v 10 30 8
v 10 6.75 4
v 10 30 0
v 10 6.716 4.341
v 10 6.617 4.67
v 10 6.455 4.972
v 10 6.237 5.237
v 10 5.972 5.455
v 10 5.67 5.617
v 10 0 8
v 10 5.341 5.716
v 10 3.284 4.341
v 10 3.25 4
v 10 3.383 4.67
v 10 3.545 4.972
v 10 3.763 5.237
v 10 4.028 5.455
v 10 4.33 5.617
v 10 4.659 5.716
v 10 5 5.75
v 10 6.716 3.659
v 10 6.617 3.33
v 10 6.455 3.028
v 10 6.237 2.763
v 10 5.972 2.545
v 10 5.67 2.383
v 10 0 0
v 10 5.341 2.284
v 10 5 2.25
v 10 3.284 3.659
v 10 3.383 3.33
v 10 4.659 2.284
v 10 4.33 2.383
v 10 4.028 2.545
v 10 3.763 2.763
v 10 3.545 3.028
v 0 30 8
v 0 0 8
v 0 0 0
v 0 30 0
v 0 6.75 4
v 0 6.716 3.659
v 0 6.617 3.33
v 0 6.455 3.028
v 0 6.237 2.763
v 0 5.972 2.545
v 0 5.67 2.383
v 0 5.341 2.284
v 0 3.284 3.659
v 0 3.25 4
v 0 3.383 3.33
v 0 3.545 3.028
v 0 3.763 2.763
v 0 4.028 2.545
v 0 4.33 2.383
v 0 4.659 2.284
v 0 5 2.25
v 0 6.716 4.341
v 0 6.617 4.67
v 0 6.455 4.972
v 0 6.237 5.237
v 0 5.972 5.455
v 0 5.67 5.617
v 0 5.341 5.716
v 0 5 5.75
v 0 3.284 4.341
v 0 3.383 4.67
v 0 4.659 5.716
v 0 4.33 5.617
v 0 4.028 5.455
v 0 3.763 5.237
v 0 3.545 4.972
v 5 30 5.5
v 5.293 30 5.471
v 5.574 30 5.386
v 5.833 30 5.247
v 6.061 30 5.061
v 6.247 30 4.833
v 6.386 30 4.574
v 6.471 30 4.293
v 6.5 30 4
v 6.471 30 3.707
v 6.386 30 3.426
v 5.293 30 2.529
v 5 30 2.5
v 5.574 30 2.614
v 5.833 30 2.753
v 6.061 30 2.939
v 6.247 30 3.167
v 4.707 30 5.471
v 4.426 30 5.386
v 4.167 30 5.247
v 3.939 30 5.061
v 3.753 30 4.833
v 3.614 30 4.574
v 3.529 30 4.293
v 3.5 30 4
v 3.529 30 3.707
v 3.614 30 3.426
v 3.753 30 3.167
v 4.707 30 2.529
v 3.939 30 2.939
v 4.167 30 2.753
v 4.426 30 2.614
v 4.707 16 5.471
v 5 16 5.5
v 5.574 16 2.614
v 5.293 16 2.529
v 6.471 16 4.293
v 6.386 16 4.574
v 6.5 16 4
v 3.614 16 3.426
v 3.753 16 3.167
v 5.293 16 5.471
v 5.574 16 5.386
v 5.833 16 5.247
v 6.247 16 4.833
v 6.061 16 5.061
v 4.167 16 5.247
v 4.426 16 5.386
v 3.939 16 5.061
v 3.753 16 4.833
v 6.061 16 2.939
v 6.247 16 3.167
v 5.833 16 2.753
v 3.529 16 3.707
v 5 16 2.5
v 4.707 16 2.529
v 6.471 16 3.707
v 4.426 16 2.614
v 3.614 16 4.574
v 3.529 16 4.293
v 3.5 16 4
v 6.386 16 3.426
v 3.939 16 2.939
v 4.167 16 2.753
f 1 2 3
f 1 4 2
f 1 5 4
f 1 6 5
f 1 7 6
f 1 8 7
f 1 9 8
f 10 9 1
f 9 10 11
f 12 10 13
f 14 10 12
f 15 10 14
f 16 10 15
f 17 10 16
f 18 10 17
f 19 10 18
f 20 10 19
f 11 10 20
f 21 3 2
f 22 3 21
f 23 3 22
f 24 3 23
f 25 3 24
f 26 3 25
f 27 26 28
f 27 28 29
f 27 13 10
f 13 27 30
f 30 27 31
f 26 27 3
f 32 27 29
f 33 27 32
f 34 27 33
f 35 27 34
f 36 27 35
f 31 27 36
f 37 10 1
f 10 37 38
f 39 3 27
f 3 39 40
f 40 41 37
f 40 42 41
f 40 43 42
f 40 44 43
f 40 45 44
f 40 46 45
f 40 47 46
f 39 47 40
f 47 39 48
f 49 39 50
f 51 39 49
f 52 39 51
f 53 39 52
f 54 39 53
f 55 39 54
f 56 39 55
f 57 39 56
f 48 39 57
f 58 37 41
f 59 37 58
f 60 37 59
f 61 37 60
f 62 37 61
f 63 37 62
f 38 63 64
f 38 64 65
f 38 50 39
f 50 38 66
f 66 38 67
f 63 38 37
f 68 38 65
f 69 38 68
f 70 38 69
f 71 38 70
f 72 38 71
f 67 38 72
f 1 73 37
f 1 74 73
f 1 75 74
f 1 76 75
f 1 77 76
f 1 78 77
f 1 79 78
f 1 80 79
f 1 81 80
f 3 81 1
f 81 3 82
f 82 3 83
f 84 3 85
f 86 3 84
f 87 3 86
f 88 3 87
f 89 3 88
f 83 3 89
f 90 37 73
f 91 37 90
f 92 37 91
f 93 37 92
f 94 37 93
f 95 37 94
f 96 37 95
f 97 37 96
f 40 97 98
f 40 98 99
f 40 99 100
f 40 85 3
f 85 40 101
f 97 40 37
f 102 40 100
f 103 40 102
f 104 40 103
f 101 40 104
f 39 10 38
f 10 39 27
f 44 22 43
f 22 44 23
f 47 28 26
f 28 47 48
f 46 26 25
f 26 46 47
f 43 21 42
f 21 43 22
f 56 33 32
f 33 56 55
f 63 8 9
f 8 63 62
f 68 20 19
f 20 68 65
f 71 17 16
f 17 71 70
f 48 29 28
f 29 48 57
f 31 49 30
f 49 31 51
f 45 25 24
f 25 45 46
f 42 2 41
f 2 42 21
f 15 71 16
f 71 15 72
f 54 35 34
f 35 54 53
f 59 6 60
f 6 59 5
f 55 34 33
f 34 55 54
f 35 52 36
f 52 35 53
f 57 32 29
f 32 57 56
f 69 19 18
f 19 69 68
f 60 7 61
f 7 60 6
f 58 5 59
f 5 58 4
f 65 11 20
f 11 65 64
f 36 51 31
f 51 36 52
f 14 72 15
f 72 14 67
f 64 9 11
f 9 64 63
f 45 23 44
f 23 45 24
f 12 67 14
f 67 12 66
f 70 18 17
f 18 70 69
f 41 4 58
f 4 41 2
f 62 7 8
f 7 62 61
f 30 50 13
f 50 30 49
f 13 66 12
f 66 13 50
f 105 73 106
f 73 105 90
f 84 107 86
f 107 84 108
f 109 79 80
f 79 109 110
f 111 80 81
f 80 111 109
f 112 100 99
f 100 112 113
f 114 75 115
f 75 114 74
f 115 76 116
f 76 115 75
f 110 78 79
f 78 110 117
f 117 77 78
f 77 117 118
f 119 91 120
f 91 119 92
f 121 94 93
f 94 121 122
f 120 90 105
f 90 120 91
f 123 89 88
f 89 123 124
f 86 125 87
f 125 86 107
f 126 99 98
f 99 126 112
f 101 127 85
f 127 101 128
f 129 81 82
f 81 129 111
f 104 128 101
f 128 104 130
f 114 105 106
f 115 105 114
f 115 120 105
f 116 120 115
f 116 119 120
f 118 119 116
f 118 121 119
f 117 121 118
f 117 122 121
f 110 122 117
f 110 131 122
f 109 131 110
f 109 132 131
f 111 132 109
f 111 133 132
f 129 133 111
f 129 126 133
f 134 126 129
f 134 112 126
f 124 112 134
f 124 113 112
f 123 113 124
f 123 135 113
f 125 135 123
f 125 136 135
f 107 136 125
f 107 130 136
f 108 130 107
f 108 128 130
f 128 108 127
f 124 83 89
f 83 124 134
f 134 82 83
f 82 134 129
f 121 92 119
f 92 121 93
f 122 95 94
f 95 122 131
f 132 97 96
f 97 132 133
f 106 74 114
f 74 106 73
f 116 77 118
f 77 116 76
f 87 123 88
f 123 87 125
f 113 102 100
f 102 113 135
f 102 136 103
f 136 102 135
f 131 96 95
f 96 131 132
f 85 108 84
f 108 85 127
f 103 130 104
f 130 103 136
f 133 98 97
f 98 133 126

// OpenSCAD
difference() {
    cube([10,30,8]);
    translate([-1,5,4]) rotate([0,90,0])cylinder($fn = 32, h=12, r = 3.5/2);
    
    translate([5,31,4]) rotate([90,0,0])cylinder($fn = 32, h=15, r = 3/2);
}
